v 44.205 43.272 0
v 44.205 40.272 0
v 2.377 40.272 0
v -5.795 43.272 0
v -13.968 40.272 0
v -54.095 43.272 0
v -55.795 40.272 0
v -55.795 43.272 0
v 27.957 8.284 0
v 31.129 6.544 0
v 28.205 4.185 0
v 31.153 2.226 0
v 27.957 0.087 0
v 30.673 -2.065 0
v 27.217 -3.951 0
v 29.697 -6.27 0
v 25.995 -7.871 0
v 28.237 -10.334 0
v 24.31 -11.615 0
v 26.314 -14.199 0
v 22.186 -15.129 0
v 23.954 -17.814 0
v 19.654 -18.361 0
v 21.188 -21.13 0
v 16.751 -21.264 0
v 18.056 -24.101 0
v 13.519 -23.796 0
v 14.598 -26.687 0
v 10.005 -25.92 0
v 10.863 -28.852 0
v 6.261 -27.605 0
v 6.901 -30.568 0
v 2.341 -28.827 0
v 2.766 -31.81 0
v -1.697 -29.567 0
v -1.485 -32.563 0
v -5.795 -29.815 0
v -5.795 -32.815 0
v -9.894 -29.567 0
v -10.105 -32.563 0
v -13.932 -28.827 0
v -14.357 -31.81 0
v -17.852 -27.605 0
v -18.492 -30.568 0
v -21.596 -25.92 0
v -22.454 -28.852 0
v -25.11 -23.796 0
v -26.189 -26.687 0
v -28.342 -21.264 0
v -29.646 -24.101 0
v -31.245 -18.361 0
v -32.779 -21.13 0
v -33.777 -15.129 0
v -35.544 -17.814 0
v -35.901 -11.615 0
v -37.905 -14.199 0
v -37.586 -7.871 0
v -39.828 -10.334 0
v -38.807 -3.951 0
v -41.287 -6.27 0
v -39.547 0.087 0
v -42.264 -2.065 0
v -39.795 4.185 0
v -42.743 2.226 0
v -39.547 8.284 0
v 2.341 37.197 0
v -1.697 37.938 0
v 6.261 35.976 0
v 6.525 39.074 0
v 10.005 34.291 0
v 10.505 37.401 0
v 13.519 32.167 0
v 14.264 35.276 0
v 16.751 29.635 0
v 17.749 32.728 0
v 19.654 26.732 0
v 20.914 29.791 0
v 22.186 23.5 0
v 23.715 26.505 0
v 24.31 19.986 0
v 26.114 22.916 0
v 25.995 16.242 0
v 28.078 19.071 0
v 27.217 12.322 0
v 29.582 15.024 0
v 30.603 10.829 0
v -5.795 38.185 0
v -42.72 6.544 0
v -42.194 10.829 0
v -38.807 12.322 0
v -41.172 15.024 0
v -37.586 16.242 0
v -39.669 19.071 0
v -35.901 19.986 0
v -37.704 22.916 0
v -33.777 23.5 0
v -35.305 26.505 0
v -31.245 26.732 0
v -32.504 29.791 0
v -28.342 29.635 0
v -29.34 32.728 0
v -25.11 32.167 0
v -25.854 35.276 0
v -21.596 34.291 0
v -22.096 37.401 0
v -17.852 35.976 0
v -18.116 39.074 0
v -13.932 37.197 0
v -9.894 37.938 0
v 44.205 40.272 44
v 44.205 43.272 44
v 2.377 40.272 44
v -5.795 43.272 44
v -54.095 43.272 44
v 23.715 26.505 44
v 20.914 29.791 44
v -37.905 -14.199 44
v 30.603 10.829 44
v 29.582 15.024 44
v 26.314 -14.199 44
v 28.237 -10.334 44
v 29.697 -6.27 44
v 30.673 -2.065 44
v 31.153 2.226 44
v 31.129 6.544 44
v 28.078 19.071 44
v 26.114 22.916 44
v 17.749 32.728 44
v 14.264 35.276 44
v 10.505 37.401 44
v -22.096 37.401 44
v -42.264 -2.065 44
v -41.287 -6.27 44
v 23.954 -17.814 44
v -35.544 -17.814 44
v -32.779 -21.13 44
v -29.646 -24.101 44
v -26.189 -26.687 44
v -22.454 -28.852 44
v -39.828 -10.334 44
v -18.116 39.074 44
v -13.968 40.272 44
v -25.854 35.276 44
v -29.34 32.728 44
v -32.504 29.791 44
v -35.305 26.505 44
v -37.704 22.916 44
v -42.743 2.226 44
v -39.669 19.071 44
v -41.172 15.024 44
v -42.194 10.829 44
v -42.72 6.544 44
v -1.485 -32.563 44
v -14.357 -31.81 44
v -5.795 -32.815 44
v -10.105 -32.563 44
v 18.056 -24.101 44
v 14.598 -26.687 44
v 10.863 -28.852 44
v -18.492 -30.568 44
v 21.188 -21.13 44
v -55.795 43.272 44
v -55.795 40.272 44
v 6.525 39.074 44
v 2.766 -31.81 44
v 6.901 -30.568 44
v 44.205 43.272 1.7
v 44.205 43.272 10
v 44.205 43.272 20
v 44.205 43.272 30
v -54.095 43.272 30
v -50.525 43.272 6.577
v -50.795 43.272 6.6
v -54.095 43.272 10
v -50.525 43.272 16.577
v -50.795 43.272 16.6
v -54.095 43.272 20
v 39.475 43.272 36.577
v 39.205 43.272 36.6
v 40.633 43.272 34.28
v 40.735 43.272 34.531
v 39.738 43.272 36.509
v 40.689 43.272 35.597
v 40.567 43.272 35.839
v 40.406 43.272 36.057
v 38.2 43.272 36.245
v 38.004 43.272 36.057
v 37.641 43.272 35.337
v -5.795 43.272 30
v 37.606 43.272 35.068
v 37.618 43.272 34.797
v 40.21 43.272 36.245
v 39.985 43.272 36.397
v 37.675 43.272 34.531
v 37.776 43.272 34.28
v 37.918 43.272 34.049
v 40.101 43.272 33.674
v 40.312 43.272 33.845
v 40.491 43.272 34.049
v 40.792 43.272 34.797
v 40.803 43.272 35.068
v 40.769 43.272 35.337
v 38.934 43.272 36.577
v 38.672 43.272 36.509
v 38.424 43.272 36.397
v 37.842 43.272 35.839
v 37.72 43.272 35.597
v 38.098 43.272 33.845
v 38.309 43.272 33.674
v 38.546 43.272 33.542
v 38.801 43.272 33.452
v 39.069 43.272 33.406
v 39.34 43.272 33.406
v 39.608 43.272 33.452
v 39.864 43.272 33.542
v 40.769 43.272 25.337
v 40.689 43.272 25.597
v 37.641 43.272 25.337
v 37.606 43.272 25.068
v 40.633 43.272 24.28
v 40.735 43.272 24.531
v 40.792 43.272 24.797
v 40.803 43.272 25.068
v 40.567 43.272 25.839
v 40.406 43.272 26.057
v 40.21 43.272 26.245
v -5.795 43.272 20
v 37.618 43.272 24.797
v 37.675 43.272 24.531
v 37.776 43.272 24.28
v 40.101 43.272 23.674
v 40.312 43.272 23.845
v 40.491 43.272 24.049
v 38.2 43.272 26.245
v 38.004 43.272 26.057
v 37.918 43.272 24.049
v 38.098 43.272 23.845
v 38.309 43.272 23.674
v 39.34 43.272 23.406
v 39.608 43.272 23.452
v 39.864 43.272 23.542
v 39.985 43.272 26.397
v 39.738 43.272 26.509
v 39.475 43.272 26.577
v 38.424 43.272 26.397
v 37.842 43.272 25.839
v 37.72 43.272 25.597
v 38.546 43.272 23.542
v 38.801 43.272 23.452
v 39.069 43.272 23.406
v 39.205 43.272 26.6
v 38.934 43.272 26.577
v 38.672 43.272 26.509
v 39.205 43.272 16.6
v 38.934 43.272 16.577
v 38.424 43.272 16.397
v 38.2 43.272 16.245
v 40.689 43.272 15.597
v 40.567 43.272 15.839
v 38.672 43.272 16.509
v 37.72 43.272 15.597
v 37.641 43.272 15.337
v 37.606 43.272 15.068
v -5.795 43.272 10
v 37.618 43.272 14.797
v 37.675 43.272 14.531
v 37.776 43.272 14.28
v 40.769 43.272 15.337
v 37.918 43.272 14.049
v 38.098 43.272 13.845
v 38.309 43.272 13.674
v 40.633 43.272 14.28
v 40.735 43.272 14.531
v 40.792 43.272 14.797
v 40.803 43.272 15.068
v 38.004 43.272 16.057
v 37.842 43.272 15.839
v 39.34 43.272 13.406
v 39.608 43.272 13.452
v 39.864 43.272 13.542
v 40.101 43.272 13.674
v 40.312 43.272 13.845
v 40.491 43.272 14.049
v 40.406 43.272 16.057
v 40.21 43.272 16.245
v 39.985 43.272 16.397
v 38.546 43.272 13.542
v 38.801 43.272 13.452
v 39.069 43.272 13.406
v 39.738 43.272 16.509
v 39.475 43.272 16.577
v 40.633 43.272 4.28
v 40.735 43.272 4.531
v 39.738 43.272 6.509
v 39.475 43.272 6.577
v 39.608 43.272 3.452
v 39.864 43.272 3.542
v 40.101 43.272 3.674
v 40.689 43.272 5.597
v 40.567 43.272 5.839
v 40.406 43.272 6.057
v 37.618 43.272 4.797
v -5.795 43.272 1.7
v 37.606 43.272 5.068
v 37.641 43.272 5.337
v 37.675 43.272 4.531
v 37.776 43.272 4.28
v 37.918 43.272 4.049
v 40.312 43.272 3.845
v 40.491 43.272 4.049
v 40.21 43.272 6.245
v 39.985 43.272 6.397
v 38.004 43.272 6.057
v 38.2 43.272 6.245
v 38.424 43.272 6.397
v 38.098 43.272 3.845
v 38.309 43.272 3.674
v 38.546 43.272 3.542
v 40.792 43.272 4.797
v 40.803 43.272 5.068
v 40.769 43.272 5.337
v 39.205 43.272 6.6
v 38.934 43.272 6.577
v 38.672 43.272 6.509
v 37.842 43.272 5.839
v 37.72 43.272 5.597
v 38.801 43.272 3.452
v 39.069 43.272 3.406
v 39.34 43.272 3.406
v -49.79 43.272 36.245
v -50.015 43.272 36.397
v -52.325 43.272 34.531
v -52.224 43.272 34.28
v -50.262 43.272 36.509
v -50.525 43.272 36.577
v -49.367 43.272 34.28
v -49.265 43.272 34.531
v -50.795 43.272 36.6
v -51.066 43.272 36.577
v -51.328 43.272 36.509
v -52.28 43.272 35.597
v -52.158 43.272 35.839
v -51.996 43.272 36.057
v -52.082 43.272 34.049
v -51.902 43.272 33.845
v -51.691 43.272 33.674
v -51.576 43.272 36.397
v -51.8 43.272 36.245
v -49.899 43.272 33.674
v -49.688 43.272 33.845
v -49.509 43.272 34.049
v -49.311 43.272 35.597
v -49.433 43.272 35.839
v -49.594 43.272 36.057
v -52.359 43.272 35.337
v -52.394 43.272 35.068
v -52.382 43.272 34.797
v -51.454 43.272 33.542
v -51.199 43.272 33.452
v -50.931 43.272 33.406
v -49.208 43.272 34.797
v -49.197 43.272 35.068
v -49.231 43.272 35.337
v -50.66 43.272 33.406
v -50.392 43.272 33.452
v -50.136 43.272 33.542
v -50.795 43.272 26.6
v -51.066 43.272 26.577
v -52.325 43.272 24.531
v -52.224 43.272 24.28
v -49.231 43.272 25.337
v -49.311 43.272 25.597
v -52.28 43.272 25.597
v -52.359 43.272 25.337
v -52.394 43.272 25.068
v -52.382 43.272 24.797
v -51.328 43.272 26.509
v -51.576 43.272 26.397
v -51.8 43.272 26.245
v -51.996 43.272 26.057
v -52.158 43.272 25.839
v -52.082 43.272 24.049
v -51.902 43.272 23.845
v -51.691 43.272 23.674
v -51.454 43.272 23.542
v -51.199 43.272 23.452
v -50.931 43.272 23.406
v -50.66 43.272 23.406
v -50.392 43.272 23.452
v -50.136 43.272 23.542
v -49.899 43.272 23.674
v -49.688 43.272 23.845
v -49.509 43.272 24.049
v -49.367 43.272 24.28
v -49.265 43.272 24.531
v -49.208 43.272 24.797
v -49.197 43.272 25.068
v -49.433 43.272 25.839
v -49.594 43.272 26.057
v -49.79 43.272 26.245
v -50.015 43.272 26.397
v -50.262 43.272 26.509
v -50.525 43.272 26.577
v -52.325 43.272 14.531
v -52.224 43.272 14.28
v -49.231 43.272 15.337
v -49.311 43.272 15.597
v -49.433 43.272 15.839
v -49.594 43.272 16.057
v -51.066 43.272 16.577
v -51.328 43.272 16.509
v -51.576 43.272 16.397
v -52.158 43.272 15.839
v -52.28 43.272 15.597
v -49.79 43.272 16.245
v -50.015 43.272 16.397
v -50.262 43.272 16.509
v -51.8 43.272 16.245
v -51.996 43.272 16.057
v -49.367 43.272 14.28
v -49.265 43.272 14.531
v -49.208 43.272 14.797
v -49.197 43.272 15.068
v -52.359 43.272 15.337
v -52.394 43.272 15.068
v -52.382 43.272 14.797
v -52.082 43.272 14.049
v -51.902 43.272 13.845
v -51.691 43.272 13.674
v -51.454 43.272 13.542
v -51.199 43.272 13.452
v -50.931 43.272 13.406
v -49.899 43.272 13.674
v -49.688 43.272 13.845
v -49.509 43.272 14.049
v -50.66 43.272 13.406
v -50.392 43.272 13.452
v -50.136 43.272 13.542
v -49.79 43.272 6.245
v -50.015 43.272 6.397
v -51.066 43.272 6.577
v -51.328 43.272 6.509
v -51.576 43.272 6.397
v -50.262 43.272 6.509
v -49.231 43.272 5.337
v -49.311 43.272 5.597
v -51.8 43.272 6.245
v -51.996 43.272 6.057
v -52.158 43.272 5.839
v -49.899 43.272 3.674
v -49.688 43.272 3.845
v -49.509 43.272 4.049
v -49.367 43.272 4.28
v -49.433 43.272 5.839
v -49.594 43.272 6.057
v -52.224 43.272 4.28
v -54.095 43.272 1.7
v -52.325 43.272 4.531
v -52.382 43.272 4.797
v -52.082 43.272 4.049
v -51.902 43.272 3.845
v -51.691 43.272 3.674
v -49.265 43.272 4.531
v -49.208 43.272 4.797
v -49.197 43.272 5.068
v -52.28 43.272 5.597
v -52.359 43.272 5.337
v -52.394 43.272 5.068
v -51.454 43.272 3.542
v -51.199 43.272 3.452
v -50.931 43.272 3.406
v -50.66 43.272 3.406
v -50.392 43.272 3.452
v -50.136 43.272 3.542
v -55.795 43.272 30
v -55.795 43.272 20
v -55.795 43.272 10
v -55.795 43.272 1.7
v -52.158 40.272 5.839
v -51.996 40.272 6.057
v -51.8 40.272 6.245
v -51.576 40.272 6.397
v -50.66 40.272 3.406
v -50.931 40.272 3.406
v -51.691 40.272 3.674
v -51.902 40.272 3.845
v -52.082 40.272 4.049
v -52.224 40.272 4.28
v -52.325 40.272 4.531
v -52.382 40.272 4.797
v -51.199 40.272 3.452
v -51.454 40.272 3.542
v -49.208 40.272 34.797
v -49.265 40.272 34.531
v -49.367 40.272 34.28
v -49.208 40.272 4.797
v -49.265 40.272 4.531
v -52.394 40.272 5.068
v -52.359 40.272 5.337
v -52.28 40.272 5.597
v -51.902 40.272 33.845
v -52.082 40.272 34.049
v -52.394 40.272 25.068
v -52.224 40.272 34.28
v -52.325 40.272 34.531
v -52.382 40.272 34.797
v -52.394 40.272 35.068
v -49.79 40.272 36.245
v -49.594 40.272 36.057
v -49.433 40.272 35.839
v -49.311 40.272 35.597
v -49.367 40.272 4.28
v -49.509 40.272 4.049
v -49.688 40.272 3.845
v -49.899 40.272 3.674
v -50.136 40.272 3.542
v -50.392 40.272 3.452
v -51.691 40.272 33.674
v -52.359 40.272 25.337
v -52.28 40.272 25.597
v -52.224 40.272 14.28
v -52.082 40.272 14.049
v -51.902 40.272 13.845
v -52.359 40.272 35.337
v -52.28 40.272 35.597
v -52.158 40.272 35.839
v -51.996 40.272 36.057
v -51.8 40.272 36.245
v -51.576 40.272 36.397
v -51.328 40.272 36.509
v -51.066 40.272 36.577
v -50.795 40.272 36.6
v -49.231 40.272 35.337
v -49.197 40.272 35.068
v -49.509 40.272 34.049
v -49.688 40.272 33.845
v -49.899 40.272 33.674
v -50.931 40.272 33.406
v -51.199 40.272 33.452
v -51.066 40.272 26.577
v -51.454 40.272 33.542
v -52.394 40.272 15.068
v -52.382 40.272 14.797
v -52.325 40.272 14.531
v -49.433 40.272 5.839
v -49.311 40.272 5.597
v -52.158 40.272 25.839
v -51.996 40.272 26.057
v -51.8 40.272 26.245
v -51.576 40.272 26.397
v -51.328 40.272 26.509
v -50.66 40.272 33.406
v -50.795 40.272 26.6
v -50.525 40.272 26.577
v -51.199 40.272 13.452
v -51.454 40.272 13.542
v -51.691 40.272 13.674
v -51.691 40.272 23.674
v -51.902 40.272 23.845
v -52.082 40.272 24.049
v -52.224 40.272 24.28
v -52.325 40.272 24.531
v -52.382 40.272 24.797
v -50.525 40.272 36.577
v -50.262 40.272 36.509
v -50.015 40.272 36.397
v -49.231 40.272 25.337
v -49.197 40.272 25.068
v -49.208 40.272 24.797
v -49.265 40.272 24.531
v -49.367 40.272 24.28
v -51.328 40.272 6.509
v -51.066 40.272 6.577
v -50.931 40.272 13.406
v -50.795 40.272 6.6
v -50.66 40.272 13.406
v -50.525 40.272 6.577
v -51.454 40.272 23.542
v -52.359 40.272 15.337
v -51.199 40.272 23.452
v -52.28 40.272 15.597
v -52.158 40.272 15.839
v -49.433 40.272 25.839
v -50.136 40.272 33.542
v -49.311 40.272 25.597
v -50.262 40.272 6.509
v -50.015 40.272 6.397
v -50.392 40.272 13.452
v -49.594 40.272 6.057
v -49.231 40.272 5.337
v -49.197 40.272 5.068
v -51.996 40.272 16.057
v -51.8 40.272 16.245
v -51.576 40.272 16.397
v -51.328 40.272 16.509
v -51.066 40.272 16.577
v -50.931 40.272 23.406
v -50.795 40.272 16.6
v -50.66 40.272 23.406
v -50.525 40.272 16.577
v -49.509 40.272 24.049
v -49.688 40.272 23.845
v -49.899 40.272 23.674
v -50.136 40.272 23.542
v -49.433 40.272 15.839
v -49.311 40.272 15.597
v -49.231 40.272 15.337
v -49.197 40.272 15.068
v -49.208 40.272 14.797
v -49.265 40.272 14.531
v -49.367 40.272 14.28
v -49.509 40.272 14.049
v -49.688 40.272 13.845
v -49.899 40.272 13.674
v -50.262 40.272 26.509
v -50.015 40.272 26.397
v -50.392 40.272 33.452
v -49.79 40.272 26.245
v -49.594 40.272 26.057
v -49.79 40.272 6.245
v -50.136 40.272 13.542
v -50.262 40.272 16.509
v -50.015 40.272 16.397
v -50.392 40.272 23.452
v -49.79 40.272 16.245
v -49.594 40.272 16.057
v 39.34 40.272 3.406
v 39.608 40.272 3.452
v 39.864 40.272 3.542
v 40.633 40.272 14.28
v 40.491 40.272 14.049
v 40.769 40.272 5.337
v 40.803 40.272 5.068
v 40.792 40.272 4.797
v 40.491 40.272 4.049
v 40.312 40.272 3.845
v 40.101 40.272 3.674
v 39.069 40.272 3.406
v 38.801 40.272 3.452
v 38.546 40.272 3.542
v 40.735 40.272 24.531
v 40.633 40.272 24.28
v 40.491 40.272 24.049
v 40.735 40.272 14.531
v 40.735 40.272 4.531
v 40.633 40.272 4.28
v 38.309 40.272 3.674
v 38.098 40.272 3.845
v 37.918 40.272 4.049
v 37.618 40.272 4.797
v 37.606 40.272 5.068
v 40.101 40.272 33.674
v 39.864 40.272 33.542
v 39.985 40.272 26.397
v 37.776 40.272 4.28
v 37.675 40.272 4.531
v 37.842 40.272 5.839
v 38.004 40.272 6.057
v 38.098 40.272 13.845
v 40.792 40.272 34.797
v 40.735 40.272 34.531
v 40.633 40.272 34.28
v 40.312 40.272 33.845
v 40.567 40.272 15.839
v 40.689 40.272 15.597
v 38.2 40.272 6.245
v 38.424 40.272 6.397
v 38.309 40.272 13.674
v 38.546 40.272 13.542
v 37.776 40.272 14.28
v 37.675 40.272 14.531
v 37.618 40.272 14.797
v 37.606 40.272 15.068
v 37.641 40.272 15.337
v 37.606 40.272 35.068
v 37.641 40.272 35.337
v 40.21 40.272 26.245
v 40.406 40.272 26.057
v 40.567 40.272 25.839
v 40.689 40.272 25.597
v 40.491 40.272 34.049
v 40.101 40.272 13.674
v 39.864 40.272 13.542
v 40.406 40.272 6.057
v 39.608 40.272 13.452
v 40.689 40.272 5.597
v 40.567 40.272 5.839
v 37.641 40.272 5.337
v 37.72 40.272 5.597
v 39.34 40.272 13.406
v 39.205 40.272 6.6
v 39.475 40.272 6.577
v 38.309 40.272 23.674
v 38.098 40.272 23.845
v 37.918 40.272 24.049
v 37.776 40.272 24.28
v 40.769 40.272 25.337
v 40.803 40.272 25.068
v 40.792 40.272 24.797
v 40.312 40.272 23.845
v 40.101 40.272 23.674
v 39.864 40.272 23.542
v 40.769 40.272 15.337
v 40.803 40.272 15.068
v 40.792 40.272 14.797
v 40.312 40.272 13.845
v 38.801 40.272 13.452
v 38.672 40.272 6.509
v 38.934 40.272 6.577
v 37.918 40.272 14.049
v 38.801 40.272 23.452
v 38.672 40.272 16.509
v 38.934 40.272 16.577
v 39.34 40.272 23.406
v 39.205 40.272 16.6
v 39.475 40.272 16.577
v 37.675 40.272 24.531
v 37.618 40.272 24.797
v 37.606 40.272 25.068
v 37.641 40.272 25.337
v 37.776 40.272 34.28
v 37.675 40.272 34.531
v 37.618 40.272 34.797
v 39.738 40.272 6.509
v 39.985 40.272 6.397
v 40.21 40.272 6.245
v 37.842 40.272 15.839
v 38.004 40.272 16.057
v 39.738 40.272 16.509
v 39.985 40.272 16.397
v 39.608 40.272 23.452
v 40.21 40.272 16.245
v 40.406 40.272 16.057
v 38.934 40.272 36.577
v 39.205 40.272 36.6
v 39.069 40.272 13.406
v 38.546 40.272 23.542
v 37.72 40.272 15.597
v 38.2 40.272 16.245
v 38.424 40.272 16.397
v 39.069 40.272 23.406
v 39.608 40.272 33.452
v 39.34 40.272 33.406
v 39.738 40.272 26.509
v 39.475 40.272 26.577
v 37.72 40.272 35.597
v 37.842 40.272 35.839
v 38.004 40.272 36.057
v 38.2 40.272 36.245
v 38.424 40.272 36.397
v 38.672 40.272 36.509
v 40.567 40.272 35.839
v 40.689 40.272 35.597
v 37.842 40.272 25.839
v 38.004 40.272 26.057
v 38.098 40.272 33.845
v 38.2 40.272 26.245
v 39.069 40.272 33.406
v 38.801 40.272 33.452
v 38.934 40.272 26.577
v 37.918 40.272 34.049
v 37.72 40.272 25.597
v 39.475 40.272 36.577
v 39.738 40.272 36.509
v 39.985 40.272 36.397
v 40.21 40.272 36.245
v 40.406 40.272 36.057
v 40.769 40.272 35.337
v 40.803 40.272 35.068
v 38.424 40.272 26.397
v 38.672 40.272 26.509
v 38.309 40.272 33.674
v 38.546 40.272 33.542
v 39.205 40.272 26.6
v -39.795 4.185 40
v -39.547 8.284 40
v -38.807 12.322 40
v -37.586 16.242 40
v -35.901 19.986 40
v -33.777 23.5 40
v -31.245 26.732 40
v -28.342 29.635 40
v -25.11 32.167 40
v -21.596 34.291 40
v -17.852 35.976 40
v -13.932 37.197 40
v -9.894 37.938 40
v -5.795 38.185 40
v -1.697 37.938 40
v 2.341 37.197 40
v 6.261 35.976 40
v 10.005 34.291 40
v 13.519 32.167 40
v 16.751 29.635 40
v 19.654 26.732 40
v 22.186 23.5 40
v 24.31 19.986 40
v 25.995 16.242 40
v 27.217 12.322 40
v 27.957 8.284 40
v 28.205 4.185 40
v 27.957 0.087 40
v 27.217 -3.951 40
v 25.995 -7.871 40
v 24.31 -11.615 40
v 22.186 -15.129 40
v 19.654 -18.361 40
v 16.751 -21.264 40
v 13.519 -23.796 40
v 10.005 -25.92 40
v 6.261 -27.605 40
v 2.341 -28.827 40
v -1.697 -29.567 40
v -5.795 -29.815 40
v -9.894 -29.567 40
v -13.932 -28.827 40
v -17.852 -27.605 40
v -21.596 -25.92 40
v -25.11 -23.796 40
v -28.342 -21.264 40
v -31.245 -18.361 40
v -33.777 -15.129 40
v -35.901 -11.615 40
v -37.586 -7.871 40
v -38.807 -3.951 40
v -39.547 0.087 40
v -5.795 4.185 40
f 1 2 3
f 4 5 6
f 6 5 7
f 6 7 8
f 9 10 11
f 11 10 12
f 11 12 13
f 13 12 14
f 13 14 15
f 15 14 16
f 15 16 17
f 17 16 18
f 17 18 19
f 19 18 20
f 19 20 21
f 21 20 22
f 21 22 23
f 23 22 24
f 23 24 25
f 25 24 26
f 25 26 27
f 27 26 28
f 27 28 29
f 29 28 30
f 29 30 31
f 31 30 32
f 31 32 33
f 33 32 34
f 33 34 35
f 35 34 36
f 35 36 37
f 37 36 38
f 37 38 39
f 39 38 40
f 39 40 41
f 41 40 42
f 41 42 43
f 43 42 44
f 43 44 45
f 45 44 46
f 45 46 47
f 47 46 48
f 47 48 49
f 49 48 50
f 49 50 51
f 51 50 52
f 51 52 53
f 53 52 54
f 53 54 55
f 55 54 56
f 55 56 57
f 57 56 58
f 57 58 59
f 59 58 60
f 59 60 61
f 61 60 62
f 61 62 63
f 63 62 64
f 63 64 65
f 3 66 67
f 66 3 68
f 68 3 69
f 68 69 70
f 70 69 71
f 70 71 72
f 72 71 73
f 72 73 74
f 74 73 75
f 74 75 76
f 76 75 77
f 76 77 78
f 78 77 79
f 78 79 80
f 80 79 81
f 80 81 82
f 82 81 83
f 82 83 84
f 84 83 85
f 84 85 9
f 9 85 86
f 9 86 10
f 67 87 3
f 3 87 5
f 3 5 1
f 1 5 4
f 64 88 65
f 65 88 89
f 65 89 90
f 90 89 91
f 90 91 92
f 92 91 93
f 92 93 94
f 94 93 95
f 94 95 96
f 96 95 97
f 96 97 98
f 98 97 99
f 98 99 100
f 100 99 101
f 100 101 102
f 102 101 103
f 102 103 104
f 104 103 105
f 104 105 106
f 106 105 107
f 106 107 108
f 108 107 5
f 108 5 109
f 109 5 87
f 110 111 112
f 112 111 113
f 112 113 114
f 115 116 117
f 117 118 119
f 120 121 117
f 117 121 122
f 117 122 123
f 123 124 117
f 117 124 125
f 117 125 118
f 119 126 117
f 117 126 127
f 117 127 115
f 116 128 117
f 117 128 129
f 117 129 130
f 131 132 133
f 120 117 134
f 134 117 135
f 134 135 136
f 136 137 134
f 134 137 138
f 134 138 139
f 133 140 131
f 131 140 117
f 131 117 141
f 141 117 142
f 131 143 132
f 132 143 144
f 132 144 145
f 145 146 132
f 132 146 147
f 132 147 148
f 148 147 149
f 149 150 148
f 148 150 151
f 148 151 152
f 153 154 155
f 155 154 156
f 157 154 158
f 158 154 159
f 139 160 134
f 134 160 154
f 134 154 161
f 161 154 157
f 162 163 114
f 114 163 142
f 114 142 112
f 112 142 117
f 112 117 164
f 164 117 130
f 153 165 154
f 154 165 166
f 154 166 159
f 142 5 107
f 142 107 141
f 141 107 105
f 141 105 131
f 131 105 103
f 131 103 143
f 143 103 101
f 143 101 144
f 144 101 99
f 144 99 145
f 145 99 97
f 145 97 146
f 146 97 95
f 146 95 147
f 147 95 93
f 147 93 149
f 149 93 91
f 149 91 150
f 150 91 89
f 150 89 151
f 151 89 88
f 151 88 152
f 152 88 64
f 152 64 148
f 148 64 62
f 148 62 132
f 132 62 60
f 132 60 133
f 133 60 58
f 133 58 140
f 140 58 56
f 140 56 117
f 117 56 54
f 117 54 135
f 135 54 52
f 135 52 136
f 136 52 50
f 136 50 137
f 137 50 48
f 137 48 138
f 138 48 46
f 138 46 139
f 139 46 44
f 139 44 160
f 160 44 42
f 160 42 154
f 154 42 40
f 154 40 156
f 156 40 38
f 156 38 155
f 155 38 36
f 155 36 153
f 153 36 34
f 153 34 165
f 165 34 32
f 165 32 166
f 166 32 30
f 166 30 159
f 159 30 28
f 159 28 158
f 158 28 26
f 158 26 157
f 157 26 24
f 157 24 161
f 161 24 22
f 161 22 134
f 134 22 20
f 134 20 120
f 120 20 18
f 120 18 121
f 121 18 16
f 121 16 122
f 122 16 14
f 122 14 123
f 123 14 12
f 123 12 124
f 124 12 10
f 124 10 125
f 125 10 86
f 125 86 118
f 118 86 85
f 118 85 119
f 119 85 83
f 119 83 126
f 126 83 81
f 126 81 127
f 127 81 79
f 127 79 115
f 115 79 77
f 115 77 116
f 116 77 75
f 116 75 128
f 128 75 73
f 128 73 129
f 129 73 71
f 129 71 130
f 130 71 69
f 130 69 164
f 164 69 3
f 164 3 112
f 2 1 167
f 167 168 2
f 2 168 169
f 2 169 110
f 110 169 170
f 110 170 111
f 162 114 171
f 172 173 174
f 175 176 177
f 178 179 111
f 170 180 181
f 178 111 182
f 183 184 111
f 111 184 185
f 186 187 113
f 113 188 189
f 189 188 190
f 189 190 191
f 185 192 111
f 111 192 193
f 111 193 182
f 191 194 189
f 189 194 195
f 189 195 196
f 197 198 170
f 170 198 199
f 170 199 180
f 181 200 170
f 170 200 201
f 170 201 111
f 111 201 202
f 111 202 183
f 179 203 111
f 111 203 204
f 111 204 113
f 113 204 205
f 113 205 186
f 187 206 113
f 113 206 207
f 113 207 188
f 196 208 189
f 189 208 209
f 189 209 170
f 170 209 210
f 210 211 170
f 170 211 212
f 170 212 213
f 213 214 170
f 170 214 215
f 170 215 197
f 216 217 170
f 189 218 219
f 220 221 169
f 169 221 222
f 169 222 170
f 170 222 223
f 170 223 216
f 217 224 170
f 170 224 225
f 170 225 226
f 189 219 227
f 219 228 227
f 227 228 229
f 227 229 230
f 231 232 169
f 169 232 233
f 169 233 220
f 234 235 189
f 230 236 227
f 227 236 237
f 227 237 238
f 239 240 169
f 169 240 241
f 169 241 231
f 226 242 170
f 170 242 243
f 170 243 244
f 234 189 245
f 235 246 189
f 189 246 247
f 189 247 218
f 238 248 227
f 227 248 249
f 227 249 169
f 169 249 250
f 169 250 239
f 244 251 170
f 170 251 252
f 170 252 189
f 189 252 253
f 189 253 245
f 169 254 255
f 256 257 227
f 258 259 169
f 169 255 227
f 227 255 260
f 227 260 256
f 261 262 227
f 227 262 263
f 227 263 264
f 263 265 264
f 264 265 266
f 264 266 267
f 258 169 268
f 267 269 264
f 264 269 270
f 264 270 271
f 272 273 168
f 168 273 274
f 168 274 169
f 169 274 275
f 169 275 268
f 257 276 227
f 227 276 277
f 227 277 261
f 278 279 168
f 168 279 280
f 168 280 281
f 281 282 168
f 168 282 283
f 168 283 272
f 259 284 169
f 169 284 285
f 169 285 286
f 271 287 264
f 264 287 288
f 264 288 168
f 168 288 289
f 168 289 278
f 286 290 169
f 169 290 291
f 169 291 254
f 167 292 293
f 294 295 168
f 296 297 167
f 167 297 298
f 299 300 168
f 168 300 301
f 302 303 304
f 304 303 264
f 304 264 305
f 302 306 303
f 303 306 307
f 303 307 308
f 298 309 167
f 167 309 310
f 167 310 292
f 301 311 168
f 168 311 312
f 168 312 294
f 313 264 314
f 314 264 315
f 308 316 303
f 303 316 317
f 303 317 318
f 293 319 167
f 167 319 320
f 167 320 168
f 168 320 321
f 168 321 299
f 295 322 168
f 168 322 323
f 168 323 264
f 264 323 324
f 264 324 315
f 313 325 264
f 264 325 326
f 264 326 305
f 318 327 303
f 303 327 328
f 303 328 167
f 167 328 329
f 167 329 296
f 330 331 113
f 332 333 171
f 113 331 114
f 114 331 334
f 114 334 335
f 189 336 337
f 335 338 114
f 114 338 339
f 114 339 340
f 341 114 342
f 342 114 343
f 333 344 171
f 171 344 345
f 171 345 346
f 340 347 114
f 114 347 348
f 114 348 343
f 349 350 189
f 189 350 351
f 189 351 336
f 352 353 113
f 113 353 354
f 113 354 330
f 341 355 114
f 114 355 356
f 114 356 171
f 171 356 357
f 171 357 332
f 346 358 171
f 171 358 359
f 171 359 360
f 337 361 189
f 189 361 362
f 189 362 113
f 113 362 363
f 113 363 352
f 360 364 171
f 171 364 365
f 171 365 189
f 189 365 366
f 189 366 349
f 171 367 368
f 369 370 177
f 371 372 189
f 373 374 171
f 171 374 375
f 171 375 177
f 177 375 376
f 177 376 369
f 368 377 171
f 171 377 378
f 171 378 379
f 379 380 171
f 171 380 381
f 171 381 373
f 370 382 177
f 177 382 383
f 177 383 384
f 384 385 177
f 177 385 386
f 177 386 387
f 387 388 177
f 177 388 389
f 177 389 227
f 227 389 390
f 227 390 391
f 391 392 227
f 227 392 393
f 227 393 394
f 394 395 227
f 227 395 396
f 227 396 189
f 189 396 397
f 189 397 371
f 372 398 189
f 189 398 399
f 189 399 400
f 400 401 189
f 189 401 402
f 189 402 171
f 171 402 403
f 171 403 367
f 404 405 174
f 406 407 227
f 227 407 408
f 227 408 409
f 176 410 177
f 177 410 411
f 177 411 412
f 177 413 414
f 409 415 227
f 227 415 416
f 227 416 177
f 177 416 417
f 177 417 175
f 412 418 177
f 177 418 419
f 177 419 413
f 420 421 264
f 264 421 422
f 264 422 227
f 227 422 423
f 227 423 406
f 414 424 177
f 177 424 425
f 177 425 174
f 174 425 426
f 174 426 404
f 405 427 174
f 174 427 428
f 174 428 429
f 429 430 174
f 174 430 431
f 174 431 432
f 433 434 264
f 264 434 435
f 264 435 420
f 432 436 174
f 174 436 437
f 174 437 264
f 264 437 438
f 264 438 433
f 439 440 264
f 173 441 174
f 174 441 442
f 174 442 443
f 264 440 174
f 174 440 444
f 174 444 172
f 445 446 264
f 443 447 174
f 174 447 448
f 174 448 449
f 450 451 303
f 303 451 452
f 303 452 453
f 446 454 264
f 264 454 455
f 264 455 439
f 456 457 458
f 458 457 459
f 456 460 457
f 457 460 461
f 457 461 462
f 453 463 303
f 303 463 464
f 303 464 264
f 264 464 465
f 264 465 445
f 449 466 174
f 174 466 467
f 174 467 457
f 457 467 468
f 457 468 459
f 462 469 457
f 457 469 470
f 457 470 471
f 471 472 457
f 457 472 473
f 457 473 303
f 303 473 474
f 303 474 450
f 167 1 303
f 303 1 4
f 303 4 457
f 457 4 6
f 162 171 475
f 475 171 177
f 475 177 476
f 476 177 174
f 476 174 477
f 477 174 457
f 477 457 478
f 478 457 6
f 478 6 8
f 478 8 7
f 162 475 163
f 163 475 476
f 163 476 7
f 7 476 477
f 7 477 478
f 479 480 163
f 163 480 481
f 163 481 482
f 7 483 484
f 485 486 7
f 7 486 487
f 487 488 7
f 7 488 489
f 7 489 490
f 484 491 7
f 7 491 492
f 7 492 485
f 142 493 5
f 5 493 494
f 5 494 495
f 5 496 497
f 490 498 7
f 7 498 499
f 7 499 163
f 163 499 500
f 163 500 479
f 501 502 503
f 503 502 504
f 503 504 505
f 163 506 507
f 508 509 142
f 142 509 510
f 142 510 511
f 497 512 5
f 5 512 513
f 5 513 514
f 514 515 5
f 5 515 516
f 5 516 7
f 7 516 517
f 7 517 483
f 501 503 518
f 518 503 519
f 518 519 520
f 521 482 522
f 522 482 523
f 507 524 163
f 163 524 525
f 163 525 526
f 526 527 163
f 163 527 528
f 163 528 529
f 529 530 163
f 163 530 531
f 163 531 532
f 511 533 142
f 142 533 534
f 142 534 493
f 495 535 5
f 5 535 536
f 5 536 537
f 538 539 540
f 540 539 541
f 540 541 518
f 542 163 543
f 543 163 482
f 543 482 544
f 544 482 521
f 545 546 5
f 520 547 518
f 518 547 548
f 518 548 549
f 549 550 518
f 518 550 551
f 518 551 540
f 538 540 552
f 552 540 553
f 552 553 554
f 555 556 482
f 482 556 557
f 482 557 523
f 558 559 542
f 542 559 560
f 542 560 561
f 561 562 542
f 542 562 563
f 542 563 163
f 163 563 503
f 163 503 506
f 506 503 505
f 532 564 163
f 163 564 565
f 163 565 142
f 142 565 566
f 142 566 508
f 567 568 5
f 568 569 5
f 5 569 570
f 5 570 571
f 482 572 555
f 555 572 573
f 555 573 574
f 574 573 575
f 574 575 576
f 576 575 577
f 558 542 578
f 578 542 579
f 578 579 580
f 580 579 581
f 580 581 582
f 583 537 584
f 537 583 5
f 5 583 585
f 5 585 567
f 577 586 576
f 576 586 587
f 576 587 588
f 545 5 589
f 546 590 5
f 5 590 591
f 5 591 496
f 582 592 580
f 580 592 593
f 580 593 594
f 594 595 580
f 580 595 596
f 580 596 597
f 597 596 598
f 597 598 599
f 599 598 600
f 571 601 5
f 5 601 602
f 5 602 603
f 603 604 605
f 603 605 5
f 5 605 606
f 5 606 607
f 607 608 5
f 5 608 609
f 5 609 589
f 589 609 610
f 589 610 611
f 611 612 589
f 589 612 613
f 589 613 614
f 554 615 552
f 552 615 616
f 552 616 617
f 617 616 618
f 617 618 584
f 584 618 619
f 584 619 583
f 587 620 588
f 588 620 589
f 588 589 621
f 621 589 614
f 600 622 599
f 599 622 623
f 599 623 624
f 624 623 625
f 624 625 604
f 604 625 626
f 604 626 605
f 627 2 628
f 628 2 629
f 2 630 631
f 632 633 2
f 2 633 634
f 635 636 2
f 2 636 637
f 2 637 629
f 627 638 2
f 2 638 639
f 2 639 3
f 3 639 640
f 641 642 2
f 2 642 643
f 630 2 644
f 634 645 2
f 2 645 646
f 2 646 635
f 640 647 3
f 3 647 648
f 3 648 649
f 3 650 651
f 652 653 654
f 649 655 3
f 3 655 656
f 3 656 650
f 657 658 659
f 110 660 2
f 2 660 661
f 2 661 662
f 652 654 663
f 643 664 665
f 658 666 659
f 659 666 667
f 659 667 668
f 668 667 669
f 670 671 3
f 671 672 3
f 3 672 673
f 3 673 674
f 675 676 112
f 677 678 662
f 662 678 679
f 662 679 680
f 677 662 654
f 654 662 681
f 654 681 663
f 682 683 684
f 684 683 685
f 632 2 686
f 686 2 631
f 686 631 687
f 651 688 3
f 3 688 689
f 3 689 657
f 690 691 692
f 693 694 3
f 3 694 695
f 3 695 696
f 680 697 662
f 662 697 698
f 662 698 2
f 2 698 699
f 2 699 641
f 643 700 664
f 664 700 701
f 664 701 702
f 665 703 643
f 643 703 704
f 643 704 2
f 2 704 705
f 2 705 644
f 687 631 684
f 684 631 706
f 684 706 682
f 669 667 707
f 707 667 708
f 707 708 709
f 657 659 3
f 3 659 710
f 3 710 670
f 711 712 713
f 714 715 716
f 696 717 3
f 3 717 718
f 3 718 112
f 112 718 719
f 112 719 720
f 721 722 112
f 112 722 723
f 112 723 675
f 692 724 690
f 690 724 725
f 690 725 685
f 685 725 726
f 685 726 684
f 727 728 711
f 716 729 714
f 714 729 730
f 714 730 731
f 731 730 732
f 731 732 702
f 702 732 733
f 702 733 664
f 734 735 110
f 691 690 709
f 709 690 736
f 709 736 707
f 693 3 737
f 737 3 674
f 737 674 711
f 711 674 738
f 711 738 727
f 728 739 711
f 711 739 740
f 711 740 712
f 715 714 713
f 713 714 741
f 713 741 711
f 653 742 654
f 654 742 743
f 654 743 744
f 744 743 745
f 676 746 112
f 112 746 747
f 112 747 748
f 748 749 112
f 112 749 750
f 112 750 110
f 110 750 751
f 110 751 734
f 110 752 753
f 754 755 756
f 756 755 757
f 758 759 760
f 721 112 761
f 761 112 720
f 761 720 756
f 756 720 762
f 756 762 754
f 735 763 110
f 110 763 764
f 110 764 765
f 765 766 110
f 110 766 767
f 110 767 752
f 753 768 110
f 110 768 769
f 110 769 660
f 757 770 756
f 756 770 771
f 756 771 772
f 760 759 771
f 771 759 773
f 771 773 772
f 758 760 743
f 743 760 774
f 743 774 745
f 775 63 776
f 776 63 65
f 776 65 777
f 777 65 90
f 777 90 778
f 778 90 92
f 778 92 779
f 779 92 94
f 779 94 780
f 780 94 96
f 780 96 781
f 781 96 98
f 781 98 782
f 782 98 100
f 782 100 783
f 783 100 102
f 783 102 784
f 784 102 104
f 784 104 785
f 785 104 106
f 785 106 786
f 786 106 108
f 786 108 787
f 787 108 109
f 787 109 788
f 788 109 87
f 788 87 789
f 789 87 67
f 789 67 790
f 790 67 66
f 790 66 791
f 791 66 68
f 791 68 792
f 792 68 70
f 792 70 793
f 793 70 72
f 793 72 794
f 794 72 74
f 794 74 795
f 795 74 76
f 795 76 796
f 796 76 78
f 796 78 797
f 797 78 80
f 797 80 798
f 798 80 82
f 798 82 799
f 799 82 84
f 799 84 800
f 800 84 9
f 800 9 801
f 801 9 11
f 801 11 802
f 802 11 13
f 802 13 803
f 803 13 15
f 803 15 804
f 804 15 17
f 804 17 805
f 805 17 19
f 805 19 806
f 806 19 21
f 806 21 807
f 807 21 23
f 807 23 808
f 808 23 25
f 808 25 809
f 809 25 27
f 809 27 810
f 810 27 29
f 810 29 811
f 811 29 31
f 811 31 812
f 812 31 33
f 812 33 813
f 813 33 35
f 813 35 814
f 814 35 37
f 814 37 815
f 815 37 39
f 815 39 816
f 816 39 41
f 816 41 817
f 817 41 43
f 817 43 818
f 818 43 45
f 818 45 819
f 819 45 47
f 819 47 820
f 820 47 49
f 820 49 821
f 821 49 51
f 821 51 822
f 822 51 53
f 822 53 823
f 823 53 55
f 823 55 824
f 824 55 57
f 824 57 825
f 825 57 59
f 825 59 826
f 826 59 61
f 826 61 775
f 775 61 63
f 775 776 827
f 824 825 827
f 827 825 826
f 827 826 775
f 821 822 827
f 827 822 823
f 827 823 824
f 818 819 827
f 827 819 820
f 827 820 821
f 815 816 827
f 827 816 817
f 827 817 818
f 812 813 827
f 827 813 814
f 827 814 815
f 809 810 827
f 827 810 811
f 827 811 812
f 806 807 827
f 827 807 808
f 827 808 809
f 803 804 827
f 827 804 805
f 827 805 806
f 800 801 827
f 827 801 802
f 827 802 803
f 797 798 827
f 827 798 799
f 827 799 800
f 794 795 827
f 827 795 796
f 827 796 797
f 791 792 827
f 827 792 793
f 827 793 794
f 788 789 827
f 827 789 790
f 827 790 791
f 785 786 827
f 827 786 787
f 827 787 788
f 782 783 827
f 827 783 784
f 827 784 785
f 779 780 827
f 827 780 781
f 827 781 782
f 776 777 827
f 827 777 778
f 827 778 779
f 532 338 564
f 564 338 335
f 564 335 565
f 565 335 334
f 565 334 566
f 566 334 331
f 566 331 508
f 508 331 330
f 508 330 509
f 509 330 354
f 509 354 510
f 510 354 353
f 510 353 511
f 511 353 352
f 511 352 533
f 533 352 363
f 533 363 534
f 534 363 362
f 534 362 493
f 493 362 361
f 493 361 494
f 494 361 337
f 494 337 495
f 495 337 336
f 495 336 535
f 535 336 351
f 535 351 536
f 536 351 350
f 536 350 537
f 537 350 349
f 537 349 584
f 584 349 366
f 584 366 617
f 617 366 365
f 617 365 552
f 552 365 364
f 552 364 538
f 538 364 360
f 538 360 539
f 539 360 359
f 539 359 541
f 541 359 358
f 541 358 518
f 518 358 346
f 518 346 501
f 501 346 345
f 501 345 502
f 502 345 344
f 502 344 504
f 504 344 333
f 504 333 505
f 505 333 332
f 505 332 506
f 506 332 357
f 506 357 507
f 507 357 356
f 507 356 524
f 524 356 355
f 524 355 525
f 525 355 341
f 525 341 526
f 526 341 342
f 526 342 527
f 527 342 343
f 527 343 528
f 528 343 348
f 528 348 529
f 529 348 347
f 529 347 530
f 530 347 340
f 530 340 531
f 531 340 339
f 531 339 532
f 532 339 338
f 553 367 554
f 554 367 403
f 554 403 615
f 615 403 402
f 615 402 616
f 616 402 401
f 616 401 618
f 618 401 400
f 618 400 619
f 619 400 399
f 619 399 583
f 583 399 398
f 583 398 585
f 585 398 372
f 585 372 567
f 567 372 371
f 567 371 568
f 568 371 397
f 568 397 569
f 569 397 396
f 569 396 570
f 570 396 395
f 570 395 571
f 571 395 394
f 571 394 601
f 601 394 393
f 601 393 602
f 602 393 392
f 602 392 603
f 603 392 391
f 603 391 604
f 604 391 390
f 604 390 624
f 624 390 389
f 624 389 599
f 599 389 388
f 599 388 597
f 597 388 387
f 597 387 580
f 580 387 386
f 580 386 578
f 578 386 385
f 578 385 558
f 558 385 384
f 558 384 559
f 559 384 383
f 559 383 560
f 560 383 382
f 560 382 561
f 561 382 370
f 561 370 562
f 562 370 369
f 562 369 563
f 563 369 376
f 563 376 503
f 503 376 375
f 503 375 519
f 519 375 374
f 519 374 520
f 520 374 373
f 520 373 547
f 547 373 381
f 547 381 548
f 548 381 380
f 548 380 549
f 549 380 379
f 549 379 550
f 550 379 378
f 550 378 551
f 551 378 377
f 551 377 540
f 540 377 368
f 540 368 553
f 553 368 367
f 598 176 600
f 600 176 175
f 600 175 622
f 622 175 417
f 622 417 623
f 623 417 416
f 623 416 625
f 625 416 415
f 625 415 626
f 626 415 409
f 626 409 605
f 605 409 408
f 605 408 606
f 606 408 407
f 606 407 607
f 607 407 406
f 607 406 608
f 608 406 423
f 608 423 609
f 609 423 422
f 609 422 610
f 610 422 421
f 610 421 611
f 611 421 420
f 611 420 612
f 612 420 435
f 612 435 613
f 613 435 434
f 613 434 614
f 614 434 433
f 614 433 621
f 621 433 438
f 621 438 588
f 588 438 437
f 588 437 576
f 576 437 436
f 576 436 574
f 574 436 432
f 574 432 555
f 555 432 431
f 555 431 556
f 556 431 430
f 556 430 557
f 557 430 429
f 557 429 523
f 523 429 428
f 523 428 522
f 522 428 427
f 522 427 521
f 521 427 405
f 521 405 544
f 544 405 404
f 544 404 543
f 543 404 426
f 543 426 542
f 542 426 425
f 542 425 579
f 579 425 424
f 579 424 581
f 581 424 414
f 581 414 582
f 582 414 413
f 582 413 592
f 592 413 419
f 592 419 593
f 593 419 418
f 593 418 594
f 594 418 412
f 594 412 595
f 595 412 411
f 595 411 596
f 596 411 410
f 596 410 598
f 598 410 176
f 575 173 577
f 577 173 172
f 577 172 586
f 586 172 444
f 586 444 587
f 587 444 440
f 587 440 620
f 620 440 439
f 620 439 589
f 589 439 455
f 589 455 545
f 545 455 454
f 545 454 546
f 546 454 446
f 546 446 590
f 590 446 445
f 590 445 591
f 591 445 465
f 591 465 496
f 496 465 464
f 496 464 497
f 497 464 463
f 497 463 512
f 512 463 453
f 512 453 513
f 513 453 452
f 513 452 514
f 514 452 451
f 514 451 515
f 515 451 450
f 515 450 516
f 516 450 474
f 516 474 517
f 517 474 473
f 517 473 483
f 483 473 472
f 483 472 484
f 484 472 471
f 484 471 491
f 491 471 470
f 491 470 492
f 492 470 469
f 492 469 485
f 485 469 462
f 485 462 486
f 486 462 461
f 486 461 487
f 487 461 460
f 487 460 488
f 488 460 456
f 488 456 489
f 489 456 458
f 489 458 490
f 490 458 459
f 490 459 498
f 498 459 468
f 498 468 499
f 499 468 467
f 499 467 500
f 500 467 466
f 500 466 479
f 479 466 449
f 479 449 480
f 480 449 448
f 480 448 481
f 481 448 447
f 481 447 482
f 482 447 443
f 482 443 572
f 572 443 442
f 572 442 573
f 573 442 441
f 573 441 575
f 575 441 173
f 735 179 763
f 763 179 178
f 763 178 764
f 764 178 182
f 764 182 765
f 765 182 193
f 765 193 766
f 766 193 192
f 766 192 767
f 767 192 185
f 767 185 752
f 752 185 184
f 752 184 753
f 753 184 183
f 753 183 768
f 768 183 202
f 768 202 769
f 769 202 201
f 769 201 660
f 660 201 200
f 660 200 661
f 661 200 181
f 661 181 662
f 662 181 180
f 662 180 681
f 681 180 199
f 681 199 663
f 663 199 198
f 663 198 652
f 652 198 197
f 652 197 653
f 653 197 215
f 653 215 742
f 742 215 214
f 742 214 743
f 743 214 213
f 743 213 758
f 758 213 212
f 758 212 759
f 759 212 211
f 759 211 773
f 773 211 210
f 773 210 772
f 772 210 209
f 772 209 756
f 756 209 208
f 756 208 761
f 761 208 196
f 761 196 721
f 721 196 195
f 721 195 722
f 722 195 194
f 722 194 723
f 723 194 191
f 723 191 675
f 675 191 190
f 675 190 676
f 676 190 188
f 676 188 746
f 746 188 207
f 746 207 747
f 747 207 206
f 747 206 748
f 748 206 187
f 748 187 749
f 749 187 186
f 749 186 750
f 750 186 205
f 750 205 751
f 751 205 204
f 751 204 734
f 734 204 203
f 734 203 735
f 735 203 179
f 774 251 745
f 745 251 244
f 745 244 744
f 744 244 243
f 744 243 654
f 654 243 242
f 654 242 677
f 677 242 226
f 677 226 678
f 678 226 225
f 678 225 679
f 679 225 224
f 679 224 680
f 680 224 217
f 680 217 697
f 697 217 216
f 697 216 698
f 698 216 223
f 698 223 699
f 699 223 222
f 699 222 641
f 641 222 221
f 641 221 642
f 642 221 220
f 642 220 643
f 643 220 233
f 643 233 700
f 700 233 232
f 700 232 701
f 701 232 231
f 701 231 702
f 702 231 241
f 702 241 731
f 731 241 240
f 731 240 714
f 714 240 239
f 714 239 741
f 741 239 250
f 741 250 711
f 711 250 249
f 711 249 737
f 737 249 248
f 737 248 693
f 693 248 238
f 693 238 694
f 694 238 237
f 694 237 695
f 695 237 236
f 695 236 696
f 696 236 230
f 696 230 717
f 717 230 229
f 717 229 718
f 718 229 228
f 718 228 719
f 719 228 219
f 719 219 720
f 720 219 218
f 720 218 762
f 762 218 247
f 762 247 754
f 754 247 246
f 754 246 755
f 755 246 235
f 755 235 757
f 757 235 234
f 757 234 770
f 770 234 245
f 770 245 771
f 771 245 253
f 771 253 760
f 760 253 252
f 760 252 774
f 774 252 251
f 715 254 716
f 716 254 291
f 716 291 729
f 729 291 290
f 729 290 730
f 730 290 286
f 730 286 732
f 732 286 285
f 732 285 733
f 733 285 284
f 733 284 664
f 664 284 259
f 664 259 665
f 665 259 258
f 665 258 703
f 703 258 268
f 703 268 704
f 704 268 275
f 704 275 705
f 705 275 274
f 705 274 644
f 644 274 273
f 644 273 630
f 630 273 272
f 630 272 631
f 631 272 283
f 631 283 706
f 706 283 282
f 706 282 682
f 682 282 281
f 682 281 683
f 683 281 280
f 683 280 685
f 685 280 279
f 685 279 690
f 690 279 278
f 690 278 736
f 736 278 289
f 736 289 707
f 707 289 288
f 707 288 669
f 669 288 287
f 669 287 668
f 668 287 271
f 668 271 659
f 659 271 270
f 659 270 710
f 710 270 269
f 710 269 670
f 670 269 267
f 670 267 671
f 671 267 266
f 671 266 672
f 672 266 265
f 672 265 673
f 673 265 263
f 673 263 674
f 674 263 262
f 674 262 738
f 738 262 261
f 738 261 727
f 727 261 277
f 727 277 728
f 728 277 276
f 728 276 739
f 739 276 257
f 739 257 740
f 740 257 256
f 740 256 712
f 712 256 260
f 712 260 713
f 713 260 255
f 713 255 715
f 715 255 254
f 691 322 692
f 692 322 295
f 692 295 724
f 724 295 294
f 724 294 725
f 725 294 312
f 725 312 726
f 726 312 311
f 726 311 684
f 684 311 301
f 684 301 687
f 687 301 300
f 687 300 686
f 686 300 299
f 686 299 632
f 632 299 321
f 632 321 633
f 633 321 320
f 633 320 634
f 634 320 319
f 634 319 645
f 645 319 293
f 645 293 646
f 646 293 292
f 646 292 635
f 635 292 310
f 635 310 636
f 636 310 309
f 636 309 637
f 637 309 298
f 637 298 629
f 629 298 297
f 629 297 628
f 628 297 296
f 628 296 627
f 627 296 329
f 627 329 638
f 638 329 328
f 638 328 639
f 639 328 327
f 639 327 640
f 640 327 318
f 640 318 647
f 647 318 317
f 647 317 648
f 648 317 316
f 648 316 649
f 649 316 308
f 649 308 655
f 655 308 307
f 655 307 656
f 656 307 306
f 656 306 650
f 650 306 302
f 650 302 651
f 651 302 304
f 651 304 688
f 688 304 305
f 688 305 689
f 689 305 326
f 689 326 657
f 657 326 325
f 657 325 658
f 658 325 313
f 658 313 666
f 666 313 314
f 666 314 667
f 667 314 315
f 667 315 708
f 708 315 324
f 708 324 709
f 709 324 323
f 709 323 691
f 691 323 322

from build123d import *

# Parameters (mm, degrees)
SKETCH_1_R             = 37
SKETCH_1_W             = 100
SKETCH_1_H             = 3
EXTRUDE_1_DEPTH        = 44
SKETCH_2_R             = 34
CUT_EXTRUDE_1_DEPTH    = 40
SKETCH_4_R             = 1.6
CUT_EXTRUDE_2_DEPTH    = 10
PATTERN_LINEAR_1_COUNT = 2
PATTERN_LINEAR_1_PITCH = 90


with BuildPart() as part:
    # ｽｹｯﾁ1 → ﾎﾞｽ - 押し出し1 (new body)
    with BuildSketch(Plane.XY):
        with Locations((-5.795339113, 4.185414542)):
            Circle(SKETCH_1_R)
        with Locations((-5.795339113, 41.771570891)):
            Rectangle(SKETCH_1_W, SKETCH_1_H)
    extrude(amount=EXTRUDE_1_DEPTH)

    # ｽｹｯﾁ2 → ｶｯﾄ - 押し出し1 (cut)
    with BuildSketch(Plane(origin=(0, 0, 0), x_dir=(-1, 0, 0), z_dir=(0, 0, -1))):
        with Locations((5.795339113, 4.185414542)):
            Circle(SKETCH_2_R)
    extrude(amount=-CUT_EXTRUDE_1_DEPTH, mode=Mode.SUBTRACT)

    # ｽｹｯﾁ4 → ｶｯﾄ - 押し出し2 (cut)
    with BuildSketch(Plane(origin=(0, 43.271570891, 0), x_dir=(1, 0, 0), z_dir=(0, 1, 0))):
        with Locations((-50.795339113, -5)):
            Circle(SKETCH_4_R)
        with Locations((-50.795339113, -15)):
            Circle(SKETCH_4_R)
        with Locations((-50.795339113, -25)):
            Circle(SKETCH_4_R)
        with Locations((-50.795339113, -35)):
            Circle(SKETCH_4_R)
    cut_extrude_2 = extrude(amount=-CUT_EXTRUDE_2_DEPTH, mode=Mode.SUBTRACT)

    # 直線ﾊﾟﾀｰﾝ1: ｶｯﾄ - 押し出し2 ×2
    with Locations(*[(i * PATTERN_LINEAR_1_PITCH, 0, 0) for i in range(1, PATTERN_LINEAR_1_COUNT)]):
        add(cut_extrude_2, mode=Mode.SUBTRACT)


solid = part.part
